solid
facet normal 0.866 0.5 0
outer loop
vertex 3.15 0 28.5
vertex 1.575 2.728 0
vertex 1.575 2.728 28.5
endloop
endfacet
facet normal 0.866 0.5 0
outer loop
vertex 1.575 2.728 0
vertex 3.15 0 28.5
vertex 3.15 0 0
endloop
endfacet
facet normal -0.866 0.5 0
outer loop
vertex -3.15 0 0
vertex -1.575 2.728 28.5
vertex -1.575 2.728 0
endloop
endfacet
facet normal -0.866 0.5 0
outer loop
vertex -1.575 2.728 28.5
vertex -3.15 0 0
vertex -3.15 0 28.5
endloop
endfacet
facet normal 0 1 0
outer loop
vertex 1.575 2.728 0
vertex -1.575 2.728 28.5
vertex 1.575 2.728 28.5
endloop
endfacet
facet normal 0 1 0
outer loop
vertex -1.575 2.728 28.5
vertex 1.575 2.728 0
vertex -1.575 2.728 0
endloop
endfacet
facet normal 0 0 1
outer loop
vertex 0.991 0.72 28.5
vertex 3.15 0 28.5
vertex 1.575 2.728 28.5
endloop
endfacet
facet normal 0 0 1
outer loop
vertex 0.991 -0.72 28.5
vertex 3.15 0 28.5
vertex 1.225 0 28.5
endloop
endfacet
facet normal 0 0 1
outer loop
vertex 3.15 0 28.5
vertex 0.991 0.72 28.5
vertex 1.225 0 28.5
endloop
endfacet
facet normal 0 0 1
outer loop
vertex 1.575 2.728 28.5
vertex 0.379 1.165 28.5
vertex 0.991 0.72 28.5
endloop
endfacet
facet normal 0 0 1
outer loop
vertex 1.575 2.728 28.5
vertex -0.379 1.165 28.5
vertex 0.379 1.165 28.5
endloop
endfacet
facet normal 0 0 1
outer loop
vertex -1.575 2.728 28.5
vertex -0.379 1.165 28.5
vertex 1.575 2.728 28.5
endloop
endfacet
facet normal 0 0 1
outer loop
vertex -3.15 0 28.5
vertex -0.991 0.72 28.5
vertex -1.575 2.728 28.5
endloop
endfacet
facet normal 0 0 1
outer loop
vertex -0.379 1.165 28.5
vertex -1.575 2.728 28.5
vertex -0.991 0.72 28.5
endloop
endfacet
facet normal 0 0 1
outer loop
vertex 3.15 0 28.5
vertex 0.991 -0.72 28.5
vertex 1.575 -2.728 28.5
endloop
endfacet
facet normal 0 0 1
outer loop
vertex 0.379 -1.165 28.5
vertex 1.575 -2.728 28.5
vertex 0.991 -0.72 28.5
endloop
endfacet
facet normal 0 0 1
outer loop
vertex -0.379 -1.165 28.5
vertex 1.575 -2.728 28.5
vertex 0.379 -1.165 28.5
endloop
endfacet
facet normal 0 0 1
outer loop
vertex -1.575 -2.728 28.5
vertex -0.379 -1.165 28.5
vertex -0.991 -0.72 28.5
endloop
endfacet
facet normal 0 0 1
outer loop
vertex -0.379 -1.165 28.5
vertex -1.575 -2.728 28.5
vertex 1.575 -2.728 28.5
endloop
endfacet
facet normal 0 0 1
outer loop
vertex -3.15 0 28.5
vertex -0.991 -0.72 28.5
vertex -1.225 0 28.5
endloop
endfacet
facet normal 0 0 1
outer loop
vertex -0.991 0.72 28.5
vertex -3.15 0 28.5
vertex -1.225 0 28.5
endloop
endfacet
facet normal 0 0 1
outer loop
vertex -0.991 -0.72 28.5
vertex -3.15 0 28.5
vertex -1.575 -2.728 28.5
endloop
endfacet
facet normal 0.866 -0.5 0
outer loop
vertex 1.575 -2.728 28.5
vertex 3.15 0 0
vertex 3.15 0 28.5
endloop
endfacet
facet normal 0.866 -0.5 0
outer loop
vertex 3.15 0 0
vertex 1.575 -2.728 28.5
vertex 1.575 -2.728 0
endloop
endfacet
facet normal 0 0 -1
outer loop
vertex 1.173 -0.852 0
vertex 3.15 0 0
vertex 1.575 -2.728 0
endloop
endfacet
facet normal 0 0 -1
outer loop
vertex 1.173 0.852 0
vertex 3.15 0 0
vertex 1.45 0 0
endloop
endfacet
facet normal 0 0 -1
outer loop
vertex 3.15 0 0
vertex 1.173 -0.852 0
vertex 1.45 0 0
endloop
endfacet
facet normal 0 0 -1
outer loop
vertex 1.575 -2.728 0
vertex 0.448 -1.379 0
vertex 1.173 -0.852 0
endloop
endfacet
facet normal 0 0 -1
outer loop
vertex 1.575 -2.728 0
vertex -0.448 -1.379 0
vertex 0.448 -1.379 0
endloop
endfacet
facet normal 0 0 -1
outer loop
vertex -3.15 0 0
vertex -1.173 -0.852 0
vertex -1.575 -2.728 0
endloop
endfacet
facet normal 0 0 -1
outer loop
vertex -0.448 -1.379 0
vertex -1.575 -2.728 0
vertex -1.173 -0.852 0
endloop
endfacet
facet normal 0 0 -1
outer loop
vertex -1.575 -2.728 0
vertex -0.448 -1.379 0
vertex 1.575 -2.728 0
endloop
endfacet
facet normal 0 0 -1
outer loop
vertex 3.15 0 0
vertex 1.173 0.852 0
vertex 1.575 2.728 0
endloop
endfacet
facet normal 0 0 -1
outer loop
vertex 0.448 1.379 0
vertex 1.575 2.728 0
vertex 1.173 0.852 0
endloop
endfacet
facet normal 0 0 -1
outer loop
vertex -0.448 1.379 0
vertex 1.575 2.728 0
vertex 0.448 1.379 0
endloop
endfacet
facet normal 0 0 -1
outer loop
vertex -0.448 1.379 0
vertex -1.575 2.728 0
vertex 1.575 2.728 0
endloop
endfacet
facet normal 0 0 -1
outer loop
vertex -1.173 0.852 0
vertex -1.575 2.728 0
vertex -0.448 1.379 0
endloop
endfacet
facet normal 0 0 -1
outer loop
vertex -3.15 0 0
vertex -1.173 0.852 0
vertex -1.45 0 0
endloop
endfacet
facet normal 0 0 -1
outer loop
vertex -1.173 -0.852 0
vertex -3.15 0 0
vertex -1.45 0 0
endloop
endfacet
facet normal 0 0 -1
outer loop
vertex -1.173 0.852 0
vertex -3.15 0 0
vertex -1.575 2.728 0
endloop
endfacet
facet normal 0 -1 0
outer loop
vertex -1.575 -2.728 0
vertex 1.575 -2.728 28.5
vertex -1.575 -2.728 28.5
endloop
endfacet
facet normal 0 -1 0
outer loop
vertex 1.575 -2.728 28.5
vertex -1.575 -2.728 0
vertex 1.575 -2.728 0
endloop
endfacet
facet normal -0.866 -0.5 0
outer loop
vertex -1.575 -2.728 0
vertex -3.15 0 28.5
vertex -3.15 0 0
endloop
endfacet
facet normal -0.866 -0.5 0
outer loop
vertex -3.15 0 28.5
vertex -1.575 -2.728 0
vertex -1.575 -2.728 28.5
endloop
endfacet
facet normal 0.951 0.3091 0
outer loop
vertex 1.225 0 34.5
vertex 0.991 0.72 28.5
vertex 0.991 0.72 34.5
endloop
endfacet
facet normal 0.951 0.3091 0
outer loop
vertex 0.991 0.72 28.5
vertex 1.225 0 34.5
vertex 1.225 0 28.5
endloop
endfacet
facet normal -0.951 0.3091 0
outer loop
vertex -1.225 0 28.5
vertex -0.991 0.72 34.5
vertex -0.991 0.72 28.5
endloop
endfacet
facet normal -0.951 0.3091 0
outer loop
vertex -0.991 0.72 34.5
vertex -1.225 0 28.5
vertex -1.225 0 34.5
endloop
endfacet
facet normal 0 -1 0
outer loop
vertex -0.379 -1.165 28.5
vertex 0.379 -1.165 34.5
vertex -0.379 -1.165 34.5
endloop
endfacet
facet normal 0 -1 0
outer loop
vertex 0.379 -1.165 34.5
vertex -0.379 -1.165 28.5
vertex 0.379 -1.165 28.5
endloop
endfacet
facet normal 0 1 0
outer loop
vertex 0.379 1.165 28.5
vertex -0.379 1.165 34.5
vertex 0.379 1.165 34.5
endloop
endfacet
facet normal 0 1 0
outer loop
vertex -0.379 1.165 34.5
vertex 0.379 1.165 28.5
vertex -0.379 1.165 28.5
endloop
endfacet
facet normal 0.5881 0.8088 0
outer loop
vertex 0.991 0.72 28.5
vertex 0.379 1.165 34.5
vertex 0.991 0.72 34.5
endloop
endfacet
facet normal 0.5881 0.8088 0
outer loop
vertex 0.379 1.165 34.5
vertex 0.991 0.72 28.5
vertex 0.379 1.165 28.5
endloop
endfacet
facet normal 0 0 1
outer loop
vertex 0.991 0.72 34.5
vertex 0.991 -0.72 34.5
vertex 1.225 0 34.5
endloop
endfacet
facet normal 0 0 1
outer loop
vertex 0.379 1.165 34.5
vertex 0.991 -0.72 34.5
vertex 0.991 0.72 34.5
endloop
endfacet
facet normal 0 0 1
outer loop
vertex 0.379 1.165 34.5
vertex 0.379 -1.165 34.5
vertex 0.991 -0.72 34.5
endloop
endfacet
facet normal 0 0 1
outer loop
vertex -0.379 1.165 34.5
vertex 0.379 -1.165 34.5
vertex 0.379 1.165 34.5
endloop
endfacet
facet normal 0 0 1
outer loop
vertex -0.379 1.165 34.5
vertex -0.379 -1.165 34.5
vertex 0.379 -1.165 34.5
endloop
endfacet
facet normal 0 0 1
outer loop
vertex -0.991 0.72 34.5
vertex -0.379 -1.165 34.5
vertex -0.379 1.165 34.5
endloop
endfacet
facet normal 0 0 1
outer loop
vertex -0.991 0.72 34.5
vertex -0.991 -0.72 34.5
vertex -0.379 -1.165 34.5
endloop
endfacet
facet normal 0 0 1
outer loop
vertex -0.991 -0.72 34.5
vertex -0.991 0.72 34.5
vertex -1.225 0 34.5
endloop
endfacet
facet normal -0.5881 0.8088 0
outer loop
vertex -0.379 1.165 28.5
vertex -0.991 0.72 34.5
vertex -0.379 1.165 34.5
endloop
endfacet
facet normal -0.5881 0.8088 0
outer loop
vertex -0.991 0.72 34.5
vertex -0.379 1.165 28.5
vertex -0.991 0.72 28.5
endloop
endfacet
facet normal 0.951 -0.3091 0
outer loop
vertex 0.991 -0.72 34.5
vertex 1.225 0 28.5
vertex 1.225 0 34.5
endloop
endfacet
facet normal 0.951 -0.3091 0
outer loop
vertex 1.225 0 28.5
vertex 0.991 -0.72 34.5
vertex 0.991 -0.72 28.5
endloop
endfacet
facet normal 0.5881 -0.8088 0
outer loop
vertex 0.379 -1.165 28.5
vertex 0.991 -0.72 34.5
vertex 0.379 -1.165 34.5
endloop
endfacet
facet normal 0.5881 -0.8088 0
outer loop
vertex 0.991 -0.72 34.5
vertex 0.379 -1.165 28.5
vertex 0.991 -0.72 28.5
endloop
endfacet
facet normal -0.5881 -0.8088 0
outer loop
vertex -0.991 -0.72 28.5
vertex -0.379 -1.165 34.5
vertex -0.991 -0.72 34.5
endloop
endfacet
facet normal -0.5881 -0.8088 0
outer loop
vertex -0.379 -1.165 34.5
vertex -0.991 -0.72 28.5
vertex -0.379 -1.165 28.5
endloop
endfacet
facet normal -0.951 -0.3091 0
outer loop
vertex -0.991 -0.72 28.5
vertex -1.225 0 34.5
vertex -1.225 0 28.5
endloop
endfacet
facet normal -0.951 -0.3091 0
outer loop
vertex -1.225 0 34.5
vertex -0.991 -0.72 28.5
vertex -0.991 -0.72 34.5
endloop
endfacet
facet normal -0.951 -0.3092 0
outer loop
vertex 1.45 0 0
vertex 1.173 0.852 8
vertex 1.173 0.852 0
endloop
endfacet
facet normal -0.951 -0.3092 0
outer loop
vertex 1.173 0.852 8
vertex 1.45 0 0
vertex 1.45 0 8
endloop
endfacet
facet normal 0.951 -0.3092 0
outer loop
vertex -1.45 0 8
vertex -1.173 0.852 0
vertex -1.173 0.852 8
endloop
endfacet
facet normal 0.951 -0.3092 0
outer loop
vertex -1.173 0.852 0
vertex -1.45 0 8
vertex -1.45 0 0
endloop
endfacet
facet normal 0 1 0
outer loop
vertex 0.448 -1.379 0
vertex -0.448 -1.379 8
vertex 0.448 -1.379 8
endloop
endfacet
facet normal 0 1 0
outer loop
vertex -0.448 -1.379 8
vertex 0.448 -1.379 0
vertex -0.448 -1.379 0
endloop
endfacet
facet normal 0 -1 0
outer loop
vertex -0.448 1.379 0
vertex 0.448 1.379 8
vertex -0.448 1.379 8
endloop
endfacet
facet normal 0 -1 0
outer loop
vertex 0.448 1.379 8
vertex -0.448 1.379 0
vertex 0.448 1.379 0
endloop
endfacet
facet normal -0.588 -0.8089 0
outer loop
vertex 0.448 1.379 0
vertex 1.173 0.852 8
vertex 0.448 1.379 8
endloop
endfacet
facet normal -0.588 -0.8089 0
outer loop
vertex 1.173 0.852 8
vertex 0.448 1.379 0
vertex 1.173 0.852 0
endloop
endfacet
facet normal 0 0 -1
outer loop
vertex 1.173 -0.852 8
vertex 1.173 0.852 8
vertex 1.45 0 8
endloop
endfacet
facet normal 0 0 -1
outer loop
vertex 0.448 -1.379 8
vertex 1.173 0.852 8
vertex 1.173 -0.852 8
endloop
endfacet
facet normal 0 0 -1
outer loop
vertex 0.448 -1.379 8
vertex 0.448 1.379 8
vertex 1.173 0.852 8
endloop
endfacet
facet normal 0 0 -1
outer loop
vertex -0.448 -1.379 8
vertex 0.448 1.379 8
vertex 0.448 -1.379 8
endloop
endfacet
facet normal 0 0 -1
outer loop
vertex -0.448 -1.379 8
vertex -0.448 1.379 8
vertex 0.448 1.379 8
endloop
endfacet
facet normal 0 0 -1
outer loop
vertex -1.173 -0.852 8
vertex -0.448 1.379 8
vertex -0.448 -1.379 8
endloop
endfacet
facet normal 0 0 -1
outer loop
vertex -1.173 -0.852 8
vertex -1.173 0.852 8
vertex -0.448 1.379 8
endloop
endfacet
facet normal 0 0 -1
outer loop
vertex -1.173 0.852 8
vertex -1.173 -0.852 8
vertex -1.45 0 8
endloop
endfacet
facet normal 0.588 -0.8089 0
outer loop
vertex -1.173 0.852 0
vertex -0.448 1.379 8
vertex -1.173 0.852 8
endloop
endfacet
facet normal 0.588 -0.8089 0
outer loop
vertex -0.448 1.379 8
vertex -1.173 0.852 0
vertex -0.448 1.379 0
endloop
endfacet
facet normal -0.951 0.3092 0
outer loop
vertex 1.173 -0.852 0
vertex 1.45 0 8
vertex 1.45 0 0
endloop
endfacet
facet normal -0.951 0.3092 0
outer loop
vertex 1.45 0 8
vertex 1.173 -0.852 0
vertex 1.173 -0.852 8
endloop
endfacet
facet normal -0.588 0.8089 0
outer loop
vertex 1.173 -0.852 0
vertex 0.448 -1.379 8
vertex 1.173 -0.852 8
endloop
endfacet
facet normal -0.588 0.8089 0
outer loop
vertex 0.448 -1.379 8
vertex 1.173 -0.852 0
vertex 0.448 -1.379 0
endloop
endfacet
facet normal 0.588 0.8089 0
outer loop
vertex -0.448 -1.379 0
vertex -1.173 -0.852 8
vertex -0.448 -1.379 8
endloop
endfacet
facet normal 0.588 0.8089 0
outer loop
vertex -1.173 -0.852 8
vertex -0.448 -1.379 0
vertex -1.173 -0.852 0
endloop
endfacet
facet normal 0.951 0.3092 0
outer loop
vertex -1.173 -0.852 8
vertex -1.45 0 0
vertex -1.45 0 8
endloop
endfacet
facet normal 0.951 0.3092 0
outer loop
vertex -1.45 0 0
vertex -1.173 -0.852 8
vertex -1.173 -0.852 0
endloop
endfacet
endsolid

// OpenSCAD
difference(){
  union(){
    cylinder(d=6.3, h=28.5, $fn=6);
    translate([0,0,28.5-1])
      cylinder(d=2.45, h=6+1,$fn=10);
  }
  translate([0,0,-1])
    cylinder(d=2.9, h=8+1,$fn=10);
}
